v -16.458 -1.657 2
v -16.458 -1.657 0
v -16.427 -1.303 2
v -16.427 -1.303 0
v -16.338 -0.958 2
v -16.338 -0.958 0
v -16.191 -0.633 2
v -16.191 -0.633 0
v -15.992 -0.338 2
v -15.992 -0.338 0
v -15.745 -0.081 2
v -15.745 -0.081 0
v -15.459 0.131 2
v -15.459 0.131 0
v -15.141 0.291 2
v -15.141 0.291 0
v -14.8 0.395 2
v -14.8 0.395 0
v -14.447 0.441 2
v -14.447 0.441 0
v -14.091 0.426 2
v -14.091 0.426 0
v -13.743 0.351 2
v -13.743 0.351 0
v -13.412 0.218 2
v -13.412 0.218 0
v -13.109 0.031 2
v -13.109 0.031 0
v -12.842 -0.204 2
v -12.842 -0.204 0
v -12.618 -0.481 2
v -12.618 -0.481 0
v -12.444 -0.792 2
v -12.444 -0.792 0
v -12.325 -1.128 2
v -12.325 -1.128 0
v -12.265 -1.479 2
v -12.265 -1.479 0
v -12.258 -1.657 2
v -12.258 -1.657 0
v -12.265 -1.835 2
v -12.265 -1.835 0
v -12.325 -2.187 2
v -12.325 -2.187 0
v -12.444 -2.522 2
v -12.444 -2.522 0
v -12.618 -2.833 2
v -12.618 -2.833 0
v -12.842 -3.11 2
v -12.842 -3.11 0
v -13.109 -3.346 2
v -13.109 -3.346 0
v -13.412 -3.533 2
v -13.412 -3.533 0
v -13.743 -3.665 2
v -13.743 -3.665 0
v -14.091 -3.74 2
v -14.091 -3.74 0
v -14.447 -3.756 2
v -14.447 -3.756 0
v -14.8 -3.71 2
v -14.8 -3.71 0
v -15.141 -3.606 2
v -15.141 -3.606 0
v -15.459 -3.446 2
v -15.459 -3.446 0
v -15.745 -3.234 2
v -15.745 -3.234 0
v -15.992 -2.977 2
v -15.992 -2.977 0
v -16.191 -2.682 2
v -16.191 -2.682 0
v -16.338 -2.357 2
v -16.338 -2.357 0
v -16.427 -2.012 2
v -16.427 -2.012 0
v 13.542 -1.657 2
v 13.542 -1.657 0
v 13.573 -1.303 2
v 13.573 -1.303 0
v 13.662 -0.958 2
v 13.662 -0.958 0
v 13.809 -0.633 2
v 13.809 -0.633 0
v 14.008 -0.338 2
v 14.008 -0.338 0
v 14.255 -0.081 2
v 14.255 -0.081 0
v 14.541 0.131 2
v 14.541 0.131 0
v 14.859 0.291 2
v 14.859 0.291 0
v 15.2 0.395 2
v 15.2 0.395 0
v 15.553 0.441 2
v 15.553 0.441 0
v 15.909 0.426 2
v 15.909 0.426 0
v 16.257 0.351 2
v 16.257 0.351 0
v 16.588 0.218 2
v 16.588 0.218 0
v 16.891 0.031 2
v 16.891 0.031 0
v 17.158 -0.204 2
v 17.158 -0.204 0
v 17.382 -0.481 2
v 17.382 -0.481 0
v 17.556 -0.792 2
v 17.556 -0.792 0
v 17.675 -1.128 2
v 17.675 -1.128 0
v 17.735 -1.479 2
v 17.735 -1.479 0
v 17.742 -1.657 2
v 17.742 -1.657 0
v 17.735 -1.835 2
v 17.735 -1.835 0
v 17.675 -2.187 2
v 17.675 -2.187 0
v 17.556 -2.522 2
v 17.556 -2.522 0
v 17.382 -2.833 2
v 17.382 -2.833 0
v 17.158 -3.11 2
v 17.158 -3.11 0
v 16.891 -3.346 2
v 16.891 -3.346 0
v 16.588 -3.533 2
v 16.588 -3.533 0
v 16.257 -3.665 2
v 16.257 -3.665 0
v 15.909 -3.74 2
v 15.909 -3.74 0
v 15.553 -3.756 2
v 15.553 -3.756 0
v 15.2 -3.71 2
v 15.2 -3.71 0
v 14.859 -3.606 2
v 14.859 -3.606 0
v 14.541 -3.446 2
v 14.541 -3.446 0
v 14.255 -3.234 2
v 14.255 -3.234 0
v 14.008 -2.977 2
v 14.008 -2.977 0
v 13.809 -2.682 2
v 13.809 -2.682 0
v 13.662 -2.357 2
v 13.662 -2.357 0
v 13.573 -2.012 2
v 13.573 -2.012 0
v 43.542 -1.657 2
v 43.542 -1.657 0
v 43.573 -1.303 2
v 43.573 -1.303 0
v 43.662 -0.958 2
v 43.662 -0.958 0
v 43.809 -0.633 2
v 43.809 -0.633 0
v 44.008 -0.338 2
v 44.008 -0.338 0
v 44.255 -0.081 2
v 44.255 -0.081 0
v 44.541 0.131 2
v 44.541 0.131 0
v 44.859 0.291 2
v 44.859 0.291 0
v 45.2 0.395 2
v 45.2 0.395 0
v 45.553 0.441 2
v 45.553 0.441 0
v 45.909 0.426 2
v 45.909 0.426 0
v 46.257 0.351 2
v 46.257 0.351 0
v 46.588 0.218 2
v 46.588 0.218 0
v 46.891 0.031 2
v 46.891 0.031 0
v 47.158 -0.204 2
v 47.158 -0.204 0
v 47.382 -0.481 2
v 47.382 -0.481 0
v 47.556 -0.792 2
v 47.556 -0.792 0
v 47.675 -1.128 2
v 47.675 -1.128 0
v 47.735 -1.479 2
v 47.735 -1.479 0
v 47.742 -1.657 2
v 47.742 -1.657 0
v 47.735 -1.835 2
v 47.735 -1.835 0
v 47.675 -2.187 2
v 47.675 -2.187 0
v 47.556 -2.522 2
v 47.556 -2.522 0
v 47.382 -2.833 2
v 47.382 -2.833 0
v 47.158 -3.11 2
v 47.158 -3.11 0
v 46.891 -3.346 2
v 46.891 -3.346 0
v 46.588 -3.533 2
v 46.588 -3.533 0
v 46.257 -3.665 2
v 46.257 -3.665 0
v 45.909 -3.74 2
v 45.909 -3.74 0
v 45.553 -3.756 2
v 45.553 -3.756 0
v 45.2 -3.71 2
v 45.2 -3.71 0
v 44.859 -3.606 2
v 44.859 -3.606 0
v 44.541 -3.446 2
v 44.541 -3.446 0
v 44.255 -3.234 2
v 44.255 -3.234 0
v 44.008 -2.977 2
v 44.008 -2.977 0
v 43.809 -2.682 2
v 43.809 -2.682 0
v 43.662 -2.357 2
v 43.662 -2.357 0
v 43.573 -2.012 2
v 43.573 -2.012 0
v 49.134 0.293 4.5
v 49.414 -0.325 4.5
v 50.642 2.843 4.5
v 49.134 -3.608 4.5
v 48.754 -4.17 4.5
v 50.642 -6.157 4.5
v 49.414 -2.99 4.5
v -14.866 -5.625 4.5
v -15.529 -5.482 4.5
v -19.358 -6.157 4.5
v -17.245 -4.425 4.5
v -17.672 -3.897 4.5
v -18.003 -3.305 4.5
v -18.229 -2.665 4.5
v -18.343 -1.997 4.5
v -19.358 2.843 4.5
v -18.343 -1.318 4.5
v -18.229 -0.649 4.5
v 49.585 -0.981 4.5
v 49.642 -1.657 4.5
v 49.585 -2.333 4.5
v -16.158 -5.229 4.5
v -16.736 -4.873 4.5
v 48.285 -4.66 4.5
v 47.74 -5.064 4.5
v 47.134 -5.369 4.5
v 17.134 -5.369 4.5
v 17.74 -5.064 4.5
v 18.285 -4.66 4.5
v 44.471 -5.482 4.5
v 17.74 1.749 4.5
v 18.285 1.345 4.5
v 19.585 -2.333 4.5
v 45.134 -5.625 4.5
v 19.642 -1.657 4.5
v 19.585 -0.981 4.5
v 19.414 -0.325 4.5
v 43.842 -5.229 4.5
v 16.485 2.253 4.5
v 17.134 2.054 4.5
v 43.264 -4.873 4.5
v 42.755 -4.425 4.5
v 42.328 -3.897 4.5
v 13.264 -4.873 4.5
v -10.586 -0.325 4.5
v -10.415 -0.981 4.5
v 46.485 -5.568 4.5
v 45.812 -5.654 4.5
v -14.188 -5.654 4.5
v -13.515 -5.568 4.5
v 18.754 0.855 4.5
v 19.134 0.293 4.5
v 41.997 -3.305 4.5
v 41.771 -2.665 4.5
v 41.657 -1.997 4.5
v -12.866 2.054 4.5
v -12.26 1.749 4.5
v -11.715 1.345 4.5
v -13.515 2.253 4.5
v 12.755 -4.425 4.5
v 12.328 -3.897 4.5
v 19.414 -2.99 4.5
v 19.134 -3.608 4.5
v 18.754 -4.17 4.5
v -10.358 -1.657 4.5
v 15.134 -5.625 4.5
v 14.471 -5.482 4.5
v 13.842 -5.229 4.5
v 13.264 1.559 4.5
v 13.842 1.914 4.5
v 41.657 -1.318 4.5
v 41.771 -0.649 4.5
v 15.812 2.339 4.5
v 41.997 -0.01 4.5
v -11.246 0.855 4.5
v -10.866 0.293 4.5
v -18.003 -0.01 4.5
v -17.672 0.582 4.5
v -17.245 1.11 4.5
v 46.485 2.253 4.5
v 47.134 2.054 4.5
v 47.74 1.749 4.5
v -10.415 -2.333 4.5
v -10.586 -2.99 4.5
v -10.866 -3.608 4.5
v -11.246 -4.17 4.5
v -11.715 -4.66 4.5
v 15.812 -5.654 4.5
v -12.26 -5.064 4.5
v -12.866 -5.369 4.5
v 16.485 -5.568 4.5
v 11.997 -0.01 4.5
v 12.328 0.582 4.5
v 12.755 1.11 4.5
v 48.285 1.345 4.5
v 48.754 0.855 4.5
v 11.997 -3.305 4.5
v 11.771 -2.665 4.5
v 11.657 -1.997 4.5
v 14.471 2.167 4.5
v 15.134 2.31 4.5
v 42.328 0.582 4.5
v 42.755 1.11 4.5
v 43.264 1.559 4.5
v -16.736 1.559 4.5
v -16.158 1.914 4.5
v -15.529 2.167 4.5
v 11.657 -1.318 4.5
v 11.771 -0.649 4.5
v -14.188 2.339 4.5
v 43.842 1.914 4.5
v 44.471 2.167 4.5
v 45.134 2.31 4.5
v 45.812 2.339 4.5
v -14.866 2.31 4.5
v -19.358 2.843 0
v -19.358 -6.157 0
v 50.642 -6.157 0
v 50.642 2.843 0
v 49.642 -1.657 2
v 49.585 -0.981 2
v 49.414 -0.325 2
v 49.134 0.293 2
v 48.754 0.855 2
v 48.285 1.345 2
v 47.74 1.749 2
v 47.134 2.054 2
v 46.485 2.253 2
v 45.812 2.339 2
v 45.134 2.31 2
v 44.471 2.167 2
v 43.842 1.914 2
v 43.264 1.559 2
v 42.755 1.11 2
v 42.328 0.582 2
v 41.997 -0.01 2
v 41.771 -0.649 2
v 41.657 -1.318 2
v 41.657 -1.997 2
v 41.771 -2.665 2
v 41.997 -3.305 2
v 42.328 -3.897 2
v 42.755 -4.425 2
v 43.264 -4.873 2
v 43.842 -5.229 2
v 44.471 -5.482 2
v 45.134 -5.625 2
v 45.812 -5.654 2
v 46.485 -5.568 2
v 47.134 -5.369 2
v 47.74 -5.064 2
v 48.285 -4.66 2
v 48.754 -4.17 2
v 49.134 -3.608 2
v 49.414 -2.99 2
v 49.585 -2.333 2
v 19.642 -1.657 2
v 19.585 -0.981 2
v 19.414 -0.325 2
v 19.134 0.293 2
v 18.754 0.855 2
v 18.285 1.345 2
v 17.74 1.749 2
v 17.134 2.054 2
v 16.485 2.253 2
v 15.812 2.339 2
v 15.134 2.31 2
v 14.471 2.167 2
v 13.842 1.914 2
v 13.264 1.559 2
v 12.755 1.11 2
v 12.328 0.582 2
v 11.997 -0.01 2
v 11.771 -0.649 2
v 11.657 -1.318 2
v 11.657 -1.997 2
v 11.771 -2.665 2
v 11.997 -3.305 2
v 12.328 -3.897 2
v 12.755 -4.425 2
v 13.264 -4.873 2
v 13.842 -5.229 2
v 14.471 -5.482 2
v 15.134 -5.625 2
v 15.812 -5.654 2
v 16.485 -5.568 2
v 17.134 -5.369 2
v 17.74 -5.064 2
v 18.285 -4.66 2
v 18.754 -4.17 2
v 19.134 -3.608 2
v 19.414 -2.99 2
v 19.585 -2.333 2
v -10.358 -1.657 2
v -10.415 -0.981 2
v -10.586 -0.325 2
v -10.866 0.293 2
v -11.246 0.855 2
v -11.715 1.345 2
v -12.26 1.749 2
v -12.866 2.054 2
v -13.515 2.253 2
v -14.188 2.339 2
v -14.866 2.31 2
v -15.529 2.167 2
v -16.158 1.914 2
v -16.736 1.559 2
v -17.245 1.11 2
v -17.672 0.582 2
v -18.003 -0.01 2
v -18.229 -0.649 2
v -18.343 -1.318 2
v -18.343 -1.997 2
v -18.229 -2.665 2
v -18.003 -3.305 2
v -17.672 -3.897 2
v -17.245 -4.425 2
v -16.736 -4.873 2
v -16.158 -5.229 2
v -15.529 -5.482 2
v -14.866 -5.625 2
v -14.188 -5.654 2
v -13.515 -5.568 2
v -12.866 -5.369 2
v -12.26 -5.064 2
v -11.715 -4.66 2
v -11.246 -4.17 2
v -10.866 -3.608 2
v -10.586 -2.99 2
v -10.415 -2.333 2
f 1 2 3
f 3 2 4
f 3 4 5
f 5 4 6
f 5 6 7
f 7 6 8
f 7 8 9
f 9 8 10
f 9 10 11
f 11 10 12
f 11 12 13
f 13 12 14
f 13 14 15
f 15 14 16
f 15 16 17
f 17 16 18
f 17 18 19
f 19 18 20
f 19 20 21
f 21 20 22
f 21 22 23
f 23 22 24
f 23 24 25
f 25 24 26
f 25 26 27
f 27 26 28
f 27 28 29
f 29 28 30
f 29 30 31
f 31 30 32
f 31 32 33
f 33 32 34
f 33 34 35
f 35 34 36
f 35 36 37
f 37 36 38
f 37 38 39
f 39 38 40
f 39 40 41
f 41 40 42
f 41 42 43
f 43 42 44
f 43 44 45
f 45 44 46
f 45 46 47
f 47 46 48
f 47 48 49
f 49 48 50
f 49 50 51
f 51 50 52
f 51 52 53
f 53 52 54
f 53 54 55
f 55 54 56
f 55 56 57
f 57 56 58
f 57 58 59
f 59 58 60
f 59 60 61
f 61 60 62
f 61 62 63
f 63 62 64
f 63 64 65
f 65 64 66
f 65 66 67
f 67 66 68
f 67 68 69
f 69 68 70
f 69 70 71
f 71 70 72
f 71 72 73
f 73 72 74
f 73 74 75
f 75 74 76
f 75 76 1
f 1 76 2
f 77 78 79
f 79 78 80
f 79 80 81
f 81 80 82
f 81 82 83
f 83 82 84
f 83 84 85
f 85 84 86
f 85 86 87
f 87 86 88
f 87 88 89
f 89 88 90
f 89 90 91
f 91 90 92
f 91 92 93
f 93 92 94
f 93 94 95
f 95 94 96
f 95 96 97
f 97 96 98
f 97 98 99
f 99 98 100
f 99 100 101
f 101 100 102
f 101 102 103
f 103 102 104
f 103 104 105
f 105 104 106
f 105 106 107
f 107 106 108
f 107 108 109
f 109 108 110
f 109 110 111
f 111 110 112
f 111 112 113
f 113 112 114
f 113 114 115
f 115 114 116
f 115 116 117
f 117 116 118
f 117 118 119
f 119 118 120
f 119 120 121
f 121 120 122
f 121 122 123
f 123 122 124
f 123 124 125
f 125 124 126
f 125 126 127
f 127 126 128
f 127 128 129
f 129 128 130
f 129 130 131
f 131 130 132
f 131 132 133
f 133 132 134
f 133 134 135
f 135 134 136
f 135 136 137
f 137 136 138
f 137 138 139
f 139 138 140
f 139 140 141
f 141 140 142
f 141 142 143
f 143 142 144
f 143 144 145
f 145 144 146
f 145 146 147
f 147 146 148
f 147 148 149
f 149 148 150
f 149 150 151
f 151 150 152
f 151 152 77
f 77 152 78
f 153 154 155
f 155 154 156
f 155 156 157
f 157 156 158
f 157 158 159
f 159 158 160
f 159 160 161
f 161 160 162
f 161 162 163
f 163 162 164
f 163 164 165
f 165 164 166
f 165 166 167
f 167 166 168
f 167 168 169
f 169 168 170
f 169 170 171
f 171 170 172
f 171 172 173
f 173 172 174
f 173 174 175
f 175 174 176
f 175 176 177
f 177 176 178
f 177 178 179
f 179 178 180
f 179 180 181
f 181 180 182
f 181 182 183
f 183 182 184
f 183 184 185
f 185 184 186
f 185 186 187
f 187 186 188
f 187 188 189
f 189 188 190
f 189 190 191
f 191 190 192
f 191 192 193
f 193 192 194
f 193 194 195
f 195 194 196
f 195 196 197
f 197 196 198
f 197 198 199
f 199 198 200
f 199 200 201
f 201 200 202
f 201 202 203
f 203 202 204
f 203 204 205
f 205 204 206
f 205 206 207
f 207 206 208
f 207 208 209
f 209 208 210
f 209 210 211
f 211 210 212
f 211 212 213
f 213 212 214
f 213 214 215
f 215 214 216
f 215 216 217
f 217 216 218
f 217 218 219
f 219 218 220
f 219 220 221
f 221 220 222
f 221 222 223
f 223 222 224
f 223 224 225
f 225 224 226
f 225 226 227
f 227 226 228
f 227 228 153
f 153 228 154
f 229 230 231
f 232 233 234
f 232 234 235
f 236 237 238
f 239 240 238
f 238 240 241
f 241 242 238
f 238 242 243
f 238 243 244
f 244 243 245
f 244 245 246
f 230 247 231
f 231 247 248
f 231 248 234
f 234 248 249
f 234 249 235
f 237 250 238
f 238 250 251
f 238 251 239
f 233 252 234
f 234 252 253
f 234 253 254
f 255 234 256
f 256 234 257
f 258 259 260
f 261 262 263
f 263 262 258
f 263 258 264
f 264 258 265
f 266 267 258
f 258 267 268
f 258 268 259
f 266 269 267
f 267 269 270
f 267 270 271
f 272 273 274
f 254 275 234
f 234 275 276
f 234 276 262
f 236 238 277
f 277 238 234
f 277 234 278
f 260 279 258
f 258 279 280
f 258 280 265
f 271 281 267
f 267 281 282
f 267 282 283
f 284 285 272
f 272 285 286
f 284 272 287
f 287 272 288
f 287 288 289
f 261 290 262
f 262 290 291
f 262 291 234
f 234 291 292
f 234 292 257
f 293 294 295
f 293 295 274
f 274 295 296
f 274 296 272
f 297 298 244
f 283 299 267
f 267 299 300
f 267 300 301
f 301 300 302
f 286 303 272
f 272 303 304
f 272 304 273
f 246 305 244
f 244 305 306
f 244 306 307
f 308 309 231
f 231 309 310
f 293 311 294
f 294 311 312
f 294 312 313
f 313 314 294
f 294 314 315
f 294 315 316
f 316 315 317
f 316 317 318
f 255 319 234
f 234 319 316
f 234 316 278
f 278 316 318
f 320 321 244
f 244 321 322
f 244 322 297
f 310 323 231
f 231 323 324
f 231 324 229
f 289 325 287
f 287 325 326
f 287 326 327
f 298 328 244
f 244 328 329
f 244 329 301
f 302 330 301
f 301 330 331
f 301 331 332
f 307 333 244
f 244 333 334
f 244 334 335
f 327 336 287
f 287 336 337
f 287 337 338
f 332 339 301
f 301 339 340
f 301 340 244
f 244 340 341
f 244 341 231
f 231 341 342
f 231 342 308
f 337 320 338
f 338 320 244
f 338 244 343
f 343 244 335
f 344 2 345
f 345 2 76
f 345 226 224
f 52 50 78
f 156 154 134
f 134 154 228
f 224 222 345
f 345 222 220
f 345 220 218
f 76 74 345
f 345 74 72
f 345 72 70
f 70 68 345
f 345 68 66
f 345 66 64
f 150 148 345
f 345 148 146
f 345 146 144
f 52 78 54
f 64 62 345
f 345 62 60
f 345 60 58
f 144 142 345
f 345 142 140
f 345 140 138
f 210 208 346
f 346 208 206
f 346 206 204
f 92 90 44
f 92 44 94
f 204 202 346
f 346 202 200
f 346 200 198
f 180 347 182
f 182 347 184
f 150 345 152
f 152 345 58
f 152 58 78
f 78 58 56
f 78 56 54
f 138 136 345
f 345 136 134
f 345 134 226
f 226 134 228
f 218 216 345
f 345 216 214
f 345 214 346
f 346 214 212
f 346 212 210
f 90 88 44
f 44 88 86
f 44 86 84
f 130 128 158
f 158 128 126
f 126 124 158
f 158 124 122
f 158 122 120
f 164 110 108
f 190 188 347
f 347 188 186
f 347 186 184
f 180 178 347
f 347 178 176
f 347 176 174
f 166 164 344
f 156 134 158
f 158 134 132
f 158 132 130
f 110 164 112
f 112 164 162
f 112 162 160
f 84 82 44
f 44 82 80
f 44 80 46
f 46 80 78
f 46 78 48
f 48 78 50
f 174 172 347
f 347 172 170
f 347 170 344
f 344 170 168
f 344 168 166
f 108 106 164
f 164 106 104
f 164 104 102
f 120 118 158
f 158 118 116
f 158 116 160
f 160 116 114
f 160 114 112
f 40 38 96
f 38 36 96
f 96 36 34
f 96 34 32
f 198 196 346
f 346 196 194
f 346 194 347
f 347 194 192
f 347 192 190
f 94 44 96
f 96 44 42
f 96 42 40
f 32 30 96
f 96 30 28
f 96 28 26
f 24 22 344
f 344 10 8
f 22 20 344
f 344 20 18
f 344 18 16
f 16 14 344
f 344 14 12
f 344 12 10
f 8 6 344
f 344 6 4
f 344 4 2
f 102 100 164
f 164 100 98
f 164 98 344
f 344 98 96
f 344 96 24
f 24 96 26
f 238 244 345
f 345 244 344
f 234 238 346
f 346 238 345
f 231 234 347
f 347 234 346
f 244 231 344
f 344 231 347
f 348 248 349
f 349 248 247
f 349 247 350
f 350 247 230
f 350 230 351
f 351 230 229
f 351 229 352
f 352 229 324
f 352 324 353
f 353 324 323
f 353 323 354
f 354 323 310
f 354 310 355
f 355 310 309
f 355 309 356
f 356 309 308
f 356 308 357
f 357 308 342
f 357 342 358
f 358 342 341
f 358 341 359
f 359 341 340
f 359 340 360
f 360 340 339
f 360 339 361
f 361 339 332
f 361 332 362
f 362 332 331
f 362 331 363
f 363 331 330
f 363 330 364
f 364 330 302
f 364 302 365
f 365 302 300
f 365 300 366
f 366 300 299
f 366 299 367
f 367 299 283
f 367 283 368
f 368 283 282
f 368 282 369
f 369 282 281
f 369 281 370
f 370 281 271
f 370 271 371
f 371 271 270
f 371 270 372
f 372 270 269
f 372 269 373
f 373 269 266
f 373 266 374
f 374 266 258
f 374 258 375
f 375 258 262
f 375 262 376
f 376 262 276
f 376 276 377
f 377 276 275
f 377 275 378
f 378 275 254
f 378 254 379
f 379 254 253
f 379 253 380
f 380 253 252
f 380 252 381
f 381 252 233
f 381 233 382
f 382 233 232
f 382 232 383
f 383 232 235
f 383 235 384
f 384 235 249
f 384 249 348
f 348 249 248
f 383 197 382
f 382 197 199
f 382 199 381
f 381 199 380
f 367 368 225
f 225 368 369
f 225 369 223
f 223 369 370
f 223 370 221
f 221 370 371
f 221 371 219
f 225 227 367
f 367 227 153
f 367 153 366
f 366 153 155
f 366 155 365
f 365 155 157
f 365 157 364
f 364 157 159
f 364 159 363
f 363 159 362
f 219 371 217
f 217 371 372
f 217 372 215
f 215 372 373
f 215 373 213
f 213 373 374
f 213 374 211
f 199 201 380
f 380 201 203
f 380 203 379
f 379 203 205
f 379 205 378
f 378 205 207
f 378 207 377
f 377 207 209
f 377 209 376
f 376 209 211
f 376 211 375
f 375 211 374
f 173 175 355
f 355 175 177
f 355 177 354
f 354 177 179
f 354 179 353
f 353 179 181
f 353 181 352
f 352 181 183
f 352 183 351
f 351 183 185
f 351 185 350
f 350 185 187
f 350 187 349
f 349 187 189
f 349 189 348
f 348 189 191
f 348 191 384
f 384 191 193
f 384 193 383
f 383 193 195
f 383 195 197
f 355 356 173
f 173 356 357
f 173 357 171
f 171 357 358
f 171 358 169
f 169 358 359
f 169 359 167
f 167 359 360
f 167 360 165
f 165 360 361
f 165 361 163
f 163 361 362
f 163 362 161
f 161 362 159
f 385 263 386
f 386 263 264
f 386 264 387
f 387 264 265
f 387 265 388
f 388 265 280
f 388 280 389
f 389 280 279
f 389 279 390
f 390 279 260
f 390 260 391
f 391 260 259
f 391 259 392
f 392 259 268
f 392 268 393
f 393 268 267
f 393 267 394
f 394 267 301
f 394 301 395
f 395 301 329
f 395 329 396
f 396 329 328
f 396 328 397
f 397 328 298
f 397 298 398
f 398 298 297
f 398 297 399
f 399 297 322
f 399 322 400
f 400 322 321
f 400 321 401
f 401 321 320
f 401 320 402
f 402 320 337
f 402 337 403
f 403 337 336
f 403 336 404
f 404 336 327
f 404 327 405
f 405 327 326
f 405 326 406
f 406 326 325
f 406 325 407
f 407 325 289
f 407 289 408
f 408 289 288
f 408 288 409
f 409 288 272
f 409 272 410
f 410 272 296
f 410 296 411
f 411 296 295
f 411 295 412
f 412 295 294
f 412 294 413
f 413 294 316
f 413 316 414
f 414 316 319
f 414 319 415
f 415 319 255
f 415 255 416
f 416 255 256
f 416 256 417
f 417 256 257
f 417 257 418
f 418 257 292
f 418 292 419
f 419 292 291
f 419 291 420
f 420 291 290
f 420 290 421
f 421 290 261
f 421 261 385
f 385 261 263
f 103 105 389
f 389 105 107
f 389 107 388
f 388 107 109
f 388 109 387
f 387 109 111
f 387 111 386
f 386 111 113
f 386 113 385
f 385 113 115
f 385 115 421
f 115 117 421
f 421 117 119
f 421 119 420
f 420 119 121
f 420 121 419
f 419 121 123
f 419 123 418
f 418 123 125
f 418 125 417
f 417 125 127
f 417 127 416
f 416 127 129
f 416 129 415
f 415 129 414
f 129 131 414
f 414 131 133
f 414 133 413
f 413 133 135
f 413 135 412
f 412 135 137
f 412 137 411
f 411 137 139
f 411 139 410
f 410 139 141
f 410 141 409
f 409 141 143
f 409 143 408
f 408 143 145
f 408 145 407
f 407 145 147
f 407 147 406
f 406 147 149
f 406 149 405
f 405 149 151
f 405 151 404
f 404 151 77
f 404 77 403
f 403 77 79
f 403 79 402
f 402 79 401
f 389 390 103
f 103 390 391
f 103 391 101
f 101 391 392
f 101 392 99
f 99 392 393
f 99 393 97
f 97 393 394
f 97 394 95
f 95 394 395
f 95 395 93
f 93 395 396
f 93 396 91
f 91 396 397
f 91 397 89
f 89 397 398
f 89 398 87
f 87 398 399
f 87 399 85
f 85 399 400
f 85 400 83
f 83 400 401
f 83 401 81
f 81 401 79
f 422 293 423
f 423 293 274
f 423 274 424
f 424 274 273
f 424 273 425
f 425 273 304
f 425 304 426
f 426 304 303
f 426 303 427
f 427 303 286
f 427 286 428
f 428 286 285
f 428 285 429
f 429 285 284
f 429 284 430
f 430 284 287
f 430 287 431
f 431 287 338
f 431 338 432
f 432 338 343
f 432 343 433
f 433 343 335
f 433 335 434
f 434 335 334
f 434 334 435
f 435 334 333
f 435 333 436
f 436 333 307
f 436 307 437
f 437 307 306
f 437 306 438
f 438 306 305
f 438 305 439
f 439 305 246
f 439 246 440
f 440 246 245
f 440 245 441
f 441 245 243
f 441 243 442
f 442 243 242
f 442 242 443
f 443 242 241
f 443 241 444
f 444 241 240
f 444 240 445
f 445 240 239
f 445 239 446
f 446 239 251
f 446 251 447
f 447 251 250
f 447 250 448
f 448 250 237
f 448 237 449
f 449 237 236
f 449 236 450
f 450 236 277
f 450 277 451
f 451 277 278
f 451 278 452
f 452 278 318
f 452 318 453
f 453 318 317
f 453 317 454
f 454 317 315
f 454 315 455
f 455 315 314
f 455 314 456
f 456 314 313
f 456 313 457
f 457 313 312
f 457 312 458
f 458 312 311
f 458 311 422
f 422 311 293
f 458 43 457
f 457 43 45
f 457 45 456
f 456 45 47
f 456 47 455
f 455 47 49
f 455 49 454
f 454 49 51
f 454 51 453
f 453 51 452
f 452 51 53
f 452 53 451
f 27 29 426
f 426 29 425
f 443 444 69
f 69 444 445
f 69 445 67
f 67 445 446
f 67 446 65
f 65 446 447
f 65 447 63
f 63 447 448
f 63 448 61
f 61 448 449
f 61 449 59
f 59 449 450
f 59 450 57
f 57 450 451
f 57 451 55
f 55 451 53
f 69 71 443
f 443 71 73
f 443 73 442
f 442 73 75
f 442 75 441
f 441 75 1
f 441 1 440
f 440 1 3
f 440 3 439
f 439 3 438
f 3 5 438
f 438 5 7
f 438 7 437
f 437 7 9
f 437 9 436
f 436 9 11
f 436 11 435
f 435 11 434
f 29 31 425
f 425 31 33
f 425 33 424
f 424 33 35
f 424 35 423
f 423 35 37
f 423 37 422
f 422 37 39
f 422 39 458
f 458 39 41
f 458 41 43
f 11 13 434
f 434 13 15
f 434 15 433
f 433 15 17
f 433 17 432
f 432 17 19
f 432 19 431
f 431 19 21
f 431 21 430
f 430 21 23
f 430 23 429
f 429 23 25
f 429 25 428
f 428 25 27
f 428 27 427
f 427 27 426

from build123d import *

# Parameters (mm, degrees)
SKETCH_1_W          = 70
SKETCH_1_H          = 9
SKETCH_1_R          = 2.1
EXTRUDE_1_DEPTH     = 4.5
SKETCH_3_R          = 4
CUT_EXTRUDE_1_DEPTH = 2.5


with BuildPart() as part:
    # 草圖1 → 填料-伸長1 (new body)
    with BuildSketch(Plane.XY):
        with Locations((15.64232849, -1.657407407)):
            Rectangle(SKETCH_1_W, SKETCH_1_H)
        with Locations((-14.35767151, -1.657407407)):
            Circle(SKETCH_1_R, mode=Mode.SUBTRACT)
        with Locations((15.64232849, -1.657407407)):
            Circle(SKETCH_1_R, mode=Mode.SUBTRACT)
        with Locations((45.64232849, -1.657407407)):
            Circle(SKETCH_1_R, mode=Mode.SUBTRACT)
    extrude(amount=EXTRUDE_1_DEPTH)

    # 草圖3 → 除料-伸長1 (cut)
    with BuildSketch(Plane.XY.offset(4.5)):
        with Locations((-14.35767151, -1.657407407)):
            Circle(SKETCH_3_R)
        with Locations((15.64232849, -1.657407407)):
            Circle(SKETCH_3_R)
        with Locations((45.64232849, -1.657407407)):
            Circle(SKETCH_3_R)
    extrude(amount=-CUT_EXTRUDE_1_DEPTH, mode=Mode.SUBTRACT)


solid = part.part
